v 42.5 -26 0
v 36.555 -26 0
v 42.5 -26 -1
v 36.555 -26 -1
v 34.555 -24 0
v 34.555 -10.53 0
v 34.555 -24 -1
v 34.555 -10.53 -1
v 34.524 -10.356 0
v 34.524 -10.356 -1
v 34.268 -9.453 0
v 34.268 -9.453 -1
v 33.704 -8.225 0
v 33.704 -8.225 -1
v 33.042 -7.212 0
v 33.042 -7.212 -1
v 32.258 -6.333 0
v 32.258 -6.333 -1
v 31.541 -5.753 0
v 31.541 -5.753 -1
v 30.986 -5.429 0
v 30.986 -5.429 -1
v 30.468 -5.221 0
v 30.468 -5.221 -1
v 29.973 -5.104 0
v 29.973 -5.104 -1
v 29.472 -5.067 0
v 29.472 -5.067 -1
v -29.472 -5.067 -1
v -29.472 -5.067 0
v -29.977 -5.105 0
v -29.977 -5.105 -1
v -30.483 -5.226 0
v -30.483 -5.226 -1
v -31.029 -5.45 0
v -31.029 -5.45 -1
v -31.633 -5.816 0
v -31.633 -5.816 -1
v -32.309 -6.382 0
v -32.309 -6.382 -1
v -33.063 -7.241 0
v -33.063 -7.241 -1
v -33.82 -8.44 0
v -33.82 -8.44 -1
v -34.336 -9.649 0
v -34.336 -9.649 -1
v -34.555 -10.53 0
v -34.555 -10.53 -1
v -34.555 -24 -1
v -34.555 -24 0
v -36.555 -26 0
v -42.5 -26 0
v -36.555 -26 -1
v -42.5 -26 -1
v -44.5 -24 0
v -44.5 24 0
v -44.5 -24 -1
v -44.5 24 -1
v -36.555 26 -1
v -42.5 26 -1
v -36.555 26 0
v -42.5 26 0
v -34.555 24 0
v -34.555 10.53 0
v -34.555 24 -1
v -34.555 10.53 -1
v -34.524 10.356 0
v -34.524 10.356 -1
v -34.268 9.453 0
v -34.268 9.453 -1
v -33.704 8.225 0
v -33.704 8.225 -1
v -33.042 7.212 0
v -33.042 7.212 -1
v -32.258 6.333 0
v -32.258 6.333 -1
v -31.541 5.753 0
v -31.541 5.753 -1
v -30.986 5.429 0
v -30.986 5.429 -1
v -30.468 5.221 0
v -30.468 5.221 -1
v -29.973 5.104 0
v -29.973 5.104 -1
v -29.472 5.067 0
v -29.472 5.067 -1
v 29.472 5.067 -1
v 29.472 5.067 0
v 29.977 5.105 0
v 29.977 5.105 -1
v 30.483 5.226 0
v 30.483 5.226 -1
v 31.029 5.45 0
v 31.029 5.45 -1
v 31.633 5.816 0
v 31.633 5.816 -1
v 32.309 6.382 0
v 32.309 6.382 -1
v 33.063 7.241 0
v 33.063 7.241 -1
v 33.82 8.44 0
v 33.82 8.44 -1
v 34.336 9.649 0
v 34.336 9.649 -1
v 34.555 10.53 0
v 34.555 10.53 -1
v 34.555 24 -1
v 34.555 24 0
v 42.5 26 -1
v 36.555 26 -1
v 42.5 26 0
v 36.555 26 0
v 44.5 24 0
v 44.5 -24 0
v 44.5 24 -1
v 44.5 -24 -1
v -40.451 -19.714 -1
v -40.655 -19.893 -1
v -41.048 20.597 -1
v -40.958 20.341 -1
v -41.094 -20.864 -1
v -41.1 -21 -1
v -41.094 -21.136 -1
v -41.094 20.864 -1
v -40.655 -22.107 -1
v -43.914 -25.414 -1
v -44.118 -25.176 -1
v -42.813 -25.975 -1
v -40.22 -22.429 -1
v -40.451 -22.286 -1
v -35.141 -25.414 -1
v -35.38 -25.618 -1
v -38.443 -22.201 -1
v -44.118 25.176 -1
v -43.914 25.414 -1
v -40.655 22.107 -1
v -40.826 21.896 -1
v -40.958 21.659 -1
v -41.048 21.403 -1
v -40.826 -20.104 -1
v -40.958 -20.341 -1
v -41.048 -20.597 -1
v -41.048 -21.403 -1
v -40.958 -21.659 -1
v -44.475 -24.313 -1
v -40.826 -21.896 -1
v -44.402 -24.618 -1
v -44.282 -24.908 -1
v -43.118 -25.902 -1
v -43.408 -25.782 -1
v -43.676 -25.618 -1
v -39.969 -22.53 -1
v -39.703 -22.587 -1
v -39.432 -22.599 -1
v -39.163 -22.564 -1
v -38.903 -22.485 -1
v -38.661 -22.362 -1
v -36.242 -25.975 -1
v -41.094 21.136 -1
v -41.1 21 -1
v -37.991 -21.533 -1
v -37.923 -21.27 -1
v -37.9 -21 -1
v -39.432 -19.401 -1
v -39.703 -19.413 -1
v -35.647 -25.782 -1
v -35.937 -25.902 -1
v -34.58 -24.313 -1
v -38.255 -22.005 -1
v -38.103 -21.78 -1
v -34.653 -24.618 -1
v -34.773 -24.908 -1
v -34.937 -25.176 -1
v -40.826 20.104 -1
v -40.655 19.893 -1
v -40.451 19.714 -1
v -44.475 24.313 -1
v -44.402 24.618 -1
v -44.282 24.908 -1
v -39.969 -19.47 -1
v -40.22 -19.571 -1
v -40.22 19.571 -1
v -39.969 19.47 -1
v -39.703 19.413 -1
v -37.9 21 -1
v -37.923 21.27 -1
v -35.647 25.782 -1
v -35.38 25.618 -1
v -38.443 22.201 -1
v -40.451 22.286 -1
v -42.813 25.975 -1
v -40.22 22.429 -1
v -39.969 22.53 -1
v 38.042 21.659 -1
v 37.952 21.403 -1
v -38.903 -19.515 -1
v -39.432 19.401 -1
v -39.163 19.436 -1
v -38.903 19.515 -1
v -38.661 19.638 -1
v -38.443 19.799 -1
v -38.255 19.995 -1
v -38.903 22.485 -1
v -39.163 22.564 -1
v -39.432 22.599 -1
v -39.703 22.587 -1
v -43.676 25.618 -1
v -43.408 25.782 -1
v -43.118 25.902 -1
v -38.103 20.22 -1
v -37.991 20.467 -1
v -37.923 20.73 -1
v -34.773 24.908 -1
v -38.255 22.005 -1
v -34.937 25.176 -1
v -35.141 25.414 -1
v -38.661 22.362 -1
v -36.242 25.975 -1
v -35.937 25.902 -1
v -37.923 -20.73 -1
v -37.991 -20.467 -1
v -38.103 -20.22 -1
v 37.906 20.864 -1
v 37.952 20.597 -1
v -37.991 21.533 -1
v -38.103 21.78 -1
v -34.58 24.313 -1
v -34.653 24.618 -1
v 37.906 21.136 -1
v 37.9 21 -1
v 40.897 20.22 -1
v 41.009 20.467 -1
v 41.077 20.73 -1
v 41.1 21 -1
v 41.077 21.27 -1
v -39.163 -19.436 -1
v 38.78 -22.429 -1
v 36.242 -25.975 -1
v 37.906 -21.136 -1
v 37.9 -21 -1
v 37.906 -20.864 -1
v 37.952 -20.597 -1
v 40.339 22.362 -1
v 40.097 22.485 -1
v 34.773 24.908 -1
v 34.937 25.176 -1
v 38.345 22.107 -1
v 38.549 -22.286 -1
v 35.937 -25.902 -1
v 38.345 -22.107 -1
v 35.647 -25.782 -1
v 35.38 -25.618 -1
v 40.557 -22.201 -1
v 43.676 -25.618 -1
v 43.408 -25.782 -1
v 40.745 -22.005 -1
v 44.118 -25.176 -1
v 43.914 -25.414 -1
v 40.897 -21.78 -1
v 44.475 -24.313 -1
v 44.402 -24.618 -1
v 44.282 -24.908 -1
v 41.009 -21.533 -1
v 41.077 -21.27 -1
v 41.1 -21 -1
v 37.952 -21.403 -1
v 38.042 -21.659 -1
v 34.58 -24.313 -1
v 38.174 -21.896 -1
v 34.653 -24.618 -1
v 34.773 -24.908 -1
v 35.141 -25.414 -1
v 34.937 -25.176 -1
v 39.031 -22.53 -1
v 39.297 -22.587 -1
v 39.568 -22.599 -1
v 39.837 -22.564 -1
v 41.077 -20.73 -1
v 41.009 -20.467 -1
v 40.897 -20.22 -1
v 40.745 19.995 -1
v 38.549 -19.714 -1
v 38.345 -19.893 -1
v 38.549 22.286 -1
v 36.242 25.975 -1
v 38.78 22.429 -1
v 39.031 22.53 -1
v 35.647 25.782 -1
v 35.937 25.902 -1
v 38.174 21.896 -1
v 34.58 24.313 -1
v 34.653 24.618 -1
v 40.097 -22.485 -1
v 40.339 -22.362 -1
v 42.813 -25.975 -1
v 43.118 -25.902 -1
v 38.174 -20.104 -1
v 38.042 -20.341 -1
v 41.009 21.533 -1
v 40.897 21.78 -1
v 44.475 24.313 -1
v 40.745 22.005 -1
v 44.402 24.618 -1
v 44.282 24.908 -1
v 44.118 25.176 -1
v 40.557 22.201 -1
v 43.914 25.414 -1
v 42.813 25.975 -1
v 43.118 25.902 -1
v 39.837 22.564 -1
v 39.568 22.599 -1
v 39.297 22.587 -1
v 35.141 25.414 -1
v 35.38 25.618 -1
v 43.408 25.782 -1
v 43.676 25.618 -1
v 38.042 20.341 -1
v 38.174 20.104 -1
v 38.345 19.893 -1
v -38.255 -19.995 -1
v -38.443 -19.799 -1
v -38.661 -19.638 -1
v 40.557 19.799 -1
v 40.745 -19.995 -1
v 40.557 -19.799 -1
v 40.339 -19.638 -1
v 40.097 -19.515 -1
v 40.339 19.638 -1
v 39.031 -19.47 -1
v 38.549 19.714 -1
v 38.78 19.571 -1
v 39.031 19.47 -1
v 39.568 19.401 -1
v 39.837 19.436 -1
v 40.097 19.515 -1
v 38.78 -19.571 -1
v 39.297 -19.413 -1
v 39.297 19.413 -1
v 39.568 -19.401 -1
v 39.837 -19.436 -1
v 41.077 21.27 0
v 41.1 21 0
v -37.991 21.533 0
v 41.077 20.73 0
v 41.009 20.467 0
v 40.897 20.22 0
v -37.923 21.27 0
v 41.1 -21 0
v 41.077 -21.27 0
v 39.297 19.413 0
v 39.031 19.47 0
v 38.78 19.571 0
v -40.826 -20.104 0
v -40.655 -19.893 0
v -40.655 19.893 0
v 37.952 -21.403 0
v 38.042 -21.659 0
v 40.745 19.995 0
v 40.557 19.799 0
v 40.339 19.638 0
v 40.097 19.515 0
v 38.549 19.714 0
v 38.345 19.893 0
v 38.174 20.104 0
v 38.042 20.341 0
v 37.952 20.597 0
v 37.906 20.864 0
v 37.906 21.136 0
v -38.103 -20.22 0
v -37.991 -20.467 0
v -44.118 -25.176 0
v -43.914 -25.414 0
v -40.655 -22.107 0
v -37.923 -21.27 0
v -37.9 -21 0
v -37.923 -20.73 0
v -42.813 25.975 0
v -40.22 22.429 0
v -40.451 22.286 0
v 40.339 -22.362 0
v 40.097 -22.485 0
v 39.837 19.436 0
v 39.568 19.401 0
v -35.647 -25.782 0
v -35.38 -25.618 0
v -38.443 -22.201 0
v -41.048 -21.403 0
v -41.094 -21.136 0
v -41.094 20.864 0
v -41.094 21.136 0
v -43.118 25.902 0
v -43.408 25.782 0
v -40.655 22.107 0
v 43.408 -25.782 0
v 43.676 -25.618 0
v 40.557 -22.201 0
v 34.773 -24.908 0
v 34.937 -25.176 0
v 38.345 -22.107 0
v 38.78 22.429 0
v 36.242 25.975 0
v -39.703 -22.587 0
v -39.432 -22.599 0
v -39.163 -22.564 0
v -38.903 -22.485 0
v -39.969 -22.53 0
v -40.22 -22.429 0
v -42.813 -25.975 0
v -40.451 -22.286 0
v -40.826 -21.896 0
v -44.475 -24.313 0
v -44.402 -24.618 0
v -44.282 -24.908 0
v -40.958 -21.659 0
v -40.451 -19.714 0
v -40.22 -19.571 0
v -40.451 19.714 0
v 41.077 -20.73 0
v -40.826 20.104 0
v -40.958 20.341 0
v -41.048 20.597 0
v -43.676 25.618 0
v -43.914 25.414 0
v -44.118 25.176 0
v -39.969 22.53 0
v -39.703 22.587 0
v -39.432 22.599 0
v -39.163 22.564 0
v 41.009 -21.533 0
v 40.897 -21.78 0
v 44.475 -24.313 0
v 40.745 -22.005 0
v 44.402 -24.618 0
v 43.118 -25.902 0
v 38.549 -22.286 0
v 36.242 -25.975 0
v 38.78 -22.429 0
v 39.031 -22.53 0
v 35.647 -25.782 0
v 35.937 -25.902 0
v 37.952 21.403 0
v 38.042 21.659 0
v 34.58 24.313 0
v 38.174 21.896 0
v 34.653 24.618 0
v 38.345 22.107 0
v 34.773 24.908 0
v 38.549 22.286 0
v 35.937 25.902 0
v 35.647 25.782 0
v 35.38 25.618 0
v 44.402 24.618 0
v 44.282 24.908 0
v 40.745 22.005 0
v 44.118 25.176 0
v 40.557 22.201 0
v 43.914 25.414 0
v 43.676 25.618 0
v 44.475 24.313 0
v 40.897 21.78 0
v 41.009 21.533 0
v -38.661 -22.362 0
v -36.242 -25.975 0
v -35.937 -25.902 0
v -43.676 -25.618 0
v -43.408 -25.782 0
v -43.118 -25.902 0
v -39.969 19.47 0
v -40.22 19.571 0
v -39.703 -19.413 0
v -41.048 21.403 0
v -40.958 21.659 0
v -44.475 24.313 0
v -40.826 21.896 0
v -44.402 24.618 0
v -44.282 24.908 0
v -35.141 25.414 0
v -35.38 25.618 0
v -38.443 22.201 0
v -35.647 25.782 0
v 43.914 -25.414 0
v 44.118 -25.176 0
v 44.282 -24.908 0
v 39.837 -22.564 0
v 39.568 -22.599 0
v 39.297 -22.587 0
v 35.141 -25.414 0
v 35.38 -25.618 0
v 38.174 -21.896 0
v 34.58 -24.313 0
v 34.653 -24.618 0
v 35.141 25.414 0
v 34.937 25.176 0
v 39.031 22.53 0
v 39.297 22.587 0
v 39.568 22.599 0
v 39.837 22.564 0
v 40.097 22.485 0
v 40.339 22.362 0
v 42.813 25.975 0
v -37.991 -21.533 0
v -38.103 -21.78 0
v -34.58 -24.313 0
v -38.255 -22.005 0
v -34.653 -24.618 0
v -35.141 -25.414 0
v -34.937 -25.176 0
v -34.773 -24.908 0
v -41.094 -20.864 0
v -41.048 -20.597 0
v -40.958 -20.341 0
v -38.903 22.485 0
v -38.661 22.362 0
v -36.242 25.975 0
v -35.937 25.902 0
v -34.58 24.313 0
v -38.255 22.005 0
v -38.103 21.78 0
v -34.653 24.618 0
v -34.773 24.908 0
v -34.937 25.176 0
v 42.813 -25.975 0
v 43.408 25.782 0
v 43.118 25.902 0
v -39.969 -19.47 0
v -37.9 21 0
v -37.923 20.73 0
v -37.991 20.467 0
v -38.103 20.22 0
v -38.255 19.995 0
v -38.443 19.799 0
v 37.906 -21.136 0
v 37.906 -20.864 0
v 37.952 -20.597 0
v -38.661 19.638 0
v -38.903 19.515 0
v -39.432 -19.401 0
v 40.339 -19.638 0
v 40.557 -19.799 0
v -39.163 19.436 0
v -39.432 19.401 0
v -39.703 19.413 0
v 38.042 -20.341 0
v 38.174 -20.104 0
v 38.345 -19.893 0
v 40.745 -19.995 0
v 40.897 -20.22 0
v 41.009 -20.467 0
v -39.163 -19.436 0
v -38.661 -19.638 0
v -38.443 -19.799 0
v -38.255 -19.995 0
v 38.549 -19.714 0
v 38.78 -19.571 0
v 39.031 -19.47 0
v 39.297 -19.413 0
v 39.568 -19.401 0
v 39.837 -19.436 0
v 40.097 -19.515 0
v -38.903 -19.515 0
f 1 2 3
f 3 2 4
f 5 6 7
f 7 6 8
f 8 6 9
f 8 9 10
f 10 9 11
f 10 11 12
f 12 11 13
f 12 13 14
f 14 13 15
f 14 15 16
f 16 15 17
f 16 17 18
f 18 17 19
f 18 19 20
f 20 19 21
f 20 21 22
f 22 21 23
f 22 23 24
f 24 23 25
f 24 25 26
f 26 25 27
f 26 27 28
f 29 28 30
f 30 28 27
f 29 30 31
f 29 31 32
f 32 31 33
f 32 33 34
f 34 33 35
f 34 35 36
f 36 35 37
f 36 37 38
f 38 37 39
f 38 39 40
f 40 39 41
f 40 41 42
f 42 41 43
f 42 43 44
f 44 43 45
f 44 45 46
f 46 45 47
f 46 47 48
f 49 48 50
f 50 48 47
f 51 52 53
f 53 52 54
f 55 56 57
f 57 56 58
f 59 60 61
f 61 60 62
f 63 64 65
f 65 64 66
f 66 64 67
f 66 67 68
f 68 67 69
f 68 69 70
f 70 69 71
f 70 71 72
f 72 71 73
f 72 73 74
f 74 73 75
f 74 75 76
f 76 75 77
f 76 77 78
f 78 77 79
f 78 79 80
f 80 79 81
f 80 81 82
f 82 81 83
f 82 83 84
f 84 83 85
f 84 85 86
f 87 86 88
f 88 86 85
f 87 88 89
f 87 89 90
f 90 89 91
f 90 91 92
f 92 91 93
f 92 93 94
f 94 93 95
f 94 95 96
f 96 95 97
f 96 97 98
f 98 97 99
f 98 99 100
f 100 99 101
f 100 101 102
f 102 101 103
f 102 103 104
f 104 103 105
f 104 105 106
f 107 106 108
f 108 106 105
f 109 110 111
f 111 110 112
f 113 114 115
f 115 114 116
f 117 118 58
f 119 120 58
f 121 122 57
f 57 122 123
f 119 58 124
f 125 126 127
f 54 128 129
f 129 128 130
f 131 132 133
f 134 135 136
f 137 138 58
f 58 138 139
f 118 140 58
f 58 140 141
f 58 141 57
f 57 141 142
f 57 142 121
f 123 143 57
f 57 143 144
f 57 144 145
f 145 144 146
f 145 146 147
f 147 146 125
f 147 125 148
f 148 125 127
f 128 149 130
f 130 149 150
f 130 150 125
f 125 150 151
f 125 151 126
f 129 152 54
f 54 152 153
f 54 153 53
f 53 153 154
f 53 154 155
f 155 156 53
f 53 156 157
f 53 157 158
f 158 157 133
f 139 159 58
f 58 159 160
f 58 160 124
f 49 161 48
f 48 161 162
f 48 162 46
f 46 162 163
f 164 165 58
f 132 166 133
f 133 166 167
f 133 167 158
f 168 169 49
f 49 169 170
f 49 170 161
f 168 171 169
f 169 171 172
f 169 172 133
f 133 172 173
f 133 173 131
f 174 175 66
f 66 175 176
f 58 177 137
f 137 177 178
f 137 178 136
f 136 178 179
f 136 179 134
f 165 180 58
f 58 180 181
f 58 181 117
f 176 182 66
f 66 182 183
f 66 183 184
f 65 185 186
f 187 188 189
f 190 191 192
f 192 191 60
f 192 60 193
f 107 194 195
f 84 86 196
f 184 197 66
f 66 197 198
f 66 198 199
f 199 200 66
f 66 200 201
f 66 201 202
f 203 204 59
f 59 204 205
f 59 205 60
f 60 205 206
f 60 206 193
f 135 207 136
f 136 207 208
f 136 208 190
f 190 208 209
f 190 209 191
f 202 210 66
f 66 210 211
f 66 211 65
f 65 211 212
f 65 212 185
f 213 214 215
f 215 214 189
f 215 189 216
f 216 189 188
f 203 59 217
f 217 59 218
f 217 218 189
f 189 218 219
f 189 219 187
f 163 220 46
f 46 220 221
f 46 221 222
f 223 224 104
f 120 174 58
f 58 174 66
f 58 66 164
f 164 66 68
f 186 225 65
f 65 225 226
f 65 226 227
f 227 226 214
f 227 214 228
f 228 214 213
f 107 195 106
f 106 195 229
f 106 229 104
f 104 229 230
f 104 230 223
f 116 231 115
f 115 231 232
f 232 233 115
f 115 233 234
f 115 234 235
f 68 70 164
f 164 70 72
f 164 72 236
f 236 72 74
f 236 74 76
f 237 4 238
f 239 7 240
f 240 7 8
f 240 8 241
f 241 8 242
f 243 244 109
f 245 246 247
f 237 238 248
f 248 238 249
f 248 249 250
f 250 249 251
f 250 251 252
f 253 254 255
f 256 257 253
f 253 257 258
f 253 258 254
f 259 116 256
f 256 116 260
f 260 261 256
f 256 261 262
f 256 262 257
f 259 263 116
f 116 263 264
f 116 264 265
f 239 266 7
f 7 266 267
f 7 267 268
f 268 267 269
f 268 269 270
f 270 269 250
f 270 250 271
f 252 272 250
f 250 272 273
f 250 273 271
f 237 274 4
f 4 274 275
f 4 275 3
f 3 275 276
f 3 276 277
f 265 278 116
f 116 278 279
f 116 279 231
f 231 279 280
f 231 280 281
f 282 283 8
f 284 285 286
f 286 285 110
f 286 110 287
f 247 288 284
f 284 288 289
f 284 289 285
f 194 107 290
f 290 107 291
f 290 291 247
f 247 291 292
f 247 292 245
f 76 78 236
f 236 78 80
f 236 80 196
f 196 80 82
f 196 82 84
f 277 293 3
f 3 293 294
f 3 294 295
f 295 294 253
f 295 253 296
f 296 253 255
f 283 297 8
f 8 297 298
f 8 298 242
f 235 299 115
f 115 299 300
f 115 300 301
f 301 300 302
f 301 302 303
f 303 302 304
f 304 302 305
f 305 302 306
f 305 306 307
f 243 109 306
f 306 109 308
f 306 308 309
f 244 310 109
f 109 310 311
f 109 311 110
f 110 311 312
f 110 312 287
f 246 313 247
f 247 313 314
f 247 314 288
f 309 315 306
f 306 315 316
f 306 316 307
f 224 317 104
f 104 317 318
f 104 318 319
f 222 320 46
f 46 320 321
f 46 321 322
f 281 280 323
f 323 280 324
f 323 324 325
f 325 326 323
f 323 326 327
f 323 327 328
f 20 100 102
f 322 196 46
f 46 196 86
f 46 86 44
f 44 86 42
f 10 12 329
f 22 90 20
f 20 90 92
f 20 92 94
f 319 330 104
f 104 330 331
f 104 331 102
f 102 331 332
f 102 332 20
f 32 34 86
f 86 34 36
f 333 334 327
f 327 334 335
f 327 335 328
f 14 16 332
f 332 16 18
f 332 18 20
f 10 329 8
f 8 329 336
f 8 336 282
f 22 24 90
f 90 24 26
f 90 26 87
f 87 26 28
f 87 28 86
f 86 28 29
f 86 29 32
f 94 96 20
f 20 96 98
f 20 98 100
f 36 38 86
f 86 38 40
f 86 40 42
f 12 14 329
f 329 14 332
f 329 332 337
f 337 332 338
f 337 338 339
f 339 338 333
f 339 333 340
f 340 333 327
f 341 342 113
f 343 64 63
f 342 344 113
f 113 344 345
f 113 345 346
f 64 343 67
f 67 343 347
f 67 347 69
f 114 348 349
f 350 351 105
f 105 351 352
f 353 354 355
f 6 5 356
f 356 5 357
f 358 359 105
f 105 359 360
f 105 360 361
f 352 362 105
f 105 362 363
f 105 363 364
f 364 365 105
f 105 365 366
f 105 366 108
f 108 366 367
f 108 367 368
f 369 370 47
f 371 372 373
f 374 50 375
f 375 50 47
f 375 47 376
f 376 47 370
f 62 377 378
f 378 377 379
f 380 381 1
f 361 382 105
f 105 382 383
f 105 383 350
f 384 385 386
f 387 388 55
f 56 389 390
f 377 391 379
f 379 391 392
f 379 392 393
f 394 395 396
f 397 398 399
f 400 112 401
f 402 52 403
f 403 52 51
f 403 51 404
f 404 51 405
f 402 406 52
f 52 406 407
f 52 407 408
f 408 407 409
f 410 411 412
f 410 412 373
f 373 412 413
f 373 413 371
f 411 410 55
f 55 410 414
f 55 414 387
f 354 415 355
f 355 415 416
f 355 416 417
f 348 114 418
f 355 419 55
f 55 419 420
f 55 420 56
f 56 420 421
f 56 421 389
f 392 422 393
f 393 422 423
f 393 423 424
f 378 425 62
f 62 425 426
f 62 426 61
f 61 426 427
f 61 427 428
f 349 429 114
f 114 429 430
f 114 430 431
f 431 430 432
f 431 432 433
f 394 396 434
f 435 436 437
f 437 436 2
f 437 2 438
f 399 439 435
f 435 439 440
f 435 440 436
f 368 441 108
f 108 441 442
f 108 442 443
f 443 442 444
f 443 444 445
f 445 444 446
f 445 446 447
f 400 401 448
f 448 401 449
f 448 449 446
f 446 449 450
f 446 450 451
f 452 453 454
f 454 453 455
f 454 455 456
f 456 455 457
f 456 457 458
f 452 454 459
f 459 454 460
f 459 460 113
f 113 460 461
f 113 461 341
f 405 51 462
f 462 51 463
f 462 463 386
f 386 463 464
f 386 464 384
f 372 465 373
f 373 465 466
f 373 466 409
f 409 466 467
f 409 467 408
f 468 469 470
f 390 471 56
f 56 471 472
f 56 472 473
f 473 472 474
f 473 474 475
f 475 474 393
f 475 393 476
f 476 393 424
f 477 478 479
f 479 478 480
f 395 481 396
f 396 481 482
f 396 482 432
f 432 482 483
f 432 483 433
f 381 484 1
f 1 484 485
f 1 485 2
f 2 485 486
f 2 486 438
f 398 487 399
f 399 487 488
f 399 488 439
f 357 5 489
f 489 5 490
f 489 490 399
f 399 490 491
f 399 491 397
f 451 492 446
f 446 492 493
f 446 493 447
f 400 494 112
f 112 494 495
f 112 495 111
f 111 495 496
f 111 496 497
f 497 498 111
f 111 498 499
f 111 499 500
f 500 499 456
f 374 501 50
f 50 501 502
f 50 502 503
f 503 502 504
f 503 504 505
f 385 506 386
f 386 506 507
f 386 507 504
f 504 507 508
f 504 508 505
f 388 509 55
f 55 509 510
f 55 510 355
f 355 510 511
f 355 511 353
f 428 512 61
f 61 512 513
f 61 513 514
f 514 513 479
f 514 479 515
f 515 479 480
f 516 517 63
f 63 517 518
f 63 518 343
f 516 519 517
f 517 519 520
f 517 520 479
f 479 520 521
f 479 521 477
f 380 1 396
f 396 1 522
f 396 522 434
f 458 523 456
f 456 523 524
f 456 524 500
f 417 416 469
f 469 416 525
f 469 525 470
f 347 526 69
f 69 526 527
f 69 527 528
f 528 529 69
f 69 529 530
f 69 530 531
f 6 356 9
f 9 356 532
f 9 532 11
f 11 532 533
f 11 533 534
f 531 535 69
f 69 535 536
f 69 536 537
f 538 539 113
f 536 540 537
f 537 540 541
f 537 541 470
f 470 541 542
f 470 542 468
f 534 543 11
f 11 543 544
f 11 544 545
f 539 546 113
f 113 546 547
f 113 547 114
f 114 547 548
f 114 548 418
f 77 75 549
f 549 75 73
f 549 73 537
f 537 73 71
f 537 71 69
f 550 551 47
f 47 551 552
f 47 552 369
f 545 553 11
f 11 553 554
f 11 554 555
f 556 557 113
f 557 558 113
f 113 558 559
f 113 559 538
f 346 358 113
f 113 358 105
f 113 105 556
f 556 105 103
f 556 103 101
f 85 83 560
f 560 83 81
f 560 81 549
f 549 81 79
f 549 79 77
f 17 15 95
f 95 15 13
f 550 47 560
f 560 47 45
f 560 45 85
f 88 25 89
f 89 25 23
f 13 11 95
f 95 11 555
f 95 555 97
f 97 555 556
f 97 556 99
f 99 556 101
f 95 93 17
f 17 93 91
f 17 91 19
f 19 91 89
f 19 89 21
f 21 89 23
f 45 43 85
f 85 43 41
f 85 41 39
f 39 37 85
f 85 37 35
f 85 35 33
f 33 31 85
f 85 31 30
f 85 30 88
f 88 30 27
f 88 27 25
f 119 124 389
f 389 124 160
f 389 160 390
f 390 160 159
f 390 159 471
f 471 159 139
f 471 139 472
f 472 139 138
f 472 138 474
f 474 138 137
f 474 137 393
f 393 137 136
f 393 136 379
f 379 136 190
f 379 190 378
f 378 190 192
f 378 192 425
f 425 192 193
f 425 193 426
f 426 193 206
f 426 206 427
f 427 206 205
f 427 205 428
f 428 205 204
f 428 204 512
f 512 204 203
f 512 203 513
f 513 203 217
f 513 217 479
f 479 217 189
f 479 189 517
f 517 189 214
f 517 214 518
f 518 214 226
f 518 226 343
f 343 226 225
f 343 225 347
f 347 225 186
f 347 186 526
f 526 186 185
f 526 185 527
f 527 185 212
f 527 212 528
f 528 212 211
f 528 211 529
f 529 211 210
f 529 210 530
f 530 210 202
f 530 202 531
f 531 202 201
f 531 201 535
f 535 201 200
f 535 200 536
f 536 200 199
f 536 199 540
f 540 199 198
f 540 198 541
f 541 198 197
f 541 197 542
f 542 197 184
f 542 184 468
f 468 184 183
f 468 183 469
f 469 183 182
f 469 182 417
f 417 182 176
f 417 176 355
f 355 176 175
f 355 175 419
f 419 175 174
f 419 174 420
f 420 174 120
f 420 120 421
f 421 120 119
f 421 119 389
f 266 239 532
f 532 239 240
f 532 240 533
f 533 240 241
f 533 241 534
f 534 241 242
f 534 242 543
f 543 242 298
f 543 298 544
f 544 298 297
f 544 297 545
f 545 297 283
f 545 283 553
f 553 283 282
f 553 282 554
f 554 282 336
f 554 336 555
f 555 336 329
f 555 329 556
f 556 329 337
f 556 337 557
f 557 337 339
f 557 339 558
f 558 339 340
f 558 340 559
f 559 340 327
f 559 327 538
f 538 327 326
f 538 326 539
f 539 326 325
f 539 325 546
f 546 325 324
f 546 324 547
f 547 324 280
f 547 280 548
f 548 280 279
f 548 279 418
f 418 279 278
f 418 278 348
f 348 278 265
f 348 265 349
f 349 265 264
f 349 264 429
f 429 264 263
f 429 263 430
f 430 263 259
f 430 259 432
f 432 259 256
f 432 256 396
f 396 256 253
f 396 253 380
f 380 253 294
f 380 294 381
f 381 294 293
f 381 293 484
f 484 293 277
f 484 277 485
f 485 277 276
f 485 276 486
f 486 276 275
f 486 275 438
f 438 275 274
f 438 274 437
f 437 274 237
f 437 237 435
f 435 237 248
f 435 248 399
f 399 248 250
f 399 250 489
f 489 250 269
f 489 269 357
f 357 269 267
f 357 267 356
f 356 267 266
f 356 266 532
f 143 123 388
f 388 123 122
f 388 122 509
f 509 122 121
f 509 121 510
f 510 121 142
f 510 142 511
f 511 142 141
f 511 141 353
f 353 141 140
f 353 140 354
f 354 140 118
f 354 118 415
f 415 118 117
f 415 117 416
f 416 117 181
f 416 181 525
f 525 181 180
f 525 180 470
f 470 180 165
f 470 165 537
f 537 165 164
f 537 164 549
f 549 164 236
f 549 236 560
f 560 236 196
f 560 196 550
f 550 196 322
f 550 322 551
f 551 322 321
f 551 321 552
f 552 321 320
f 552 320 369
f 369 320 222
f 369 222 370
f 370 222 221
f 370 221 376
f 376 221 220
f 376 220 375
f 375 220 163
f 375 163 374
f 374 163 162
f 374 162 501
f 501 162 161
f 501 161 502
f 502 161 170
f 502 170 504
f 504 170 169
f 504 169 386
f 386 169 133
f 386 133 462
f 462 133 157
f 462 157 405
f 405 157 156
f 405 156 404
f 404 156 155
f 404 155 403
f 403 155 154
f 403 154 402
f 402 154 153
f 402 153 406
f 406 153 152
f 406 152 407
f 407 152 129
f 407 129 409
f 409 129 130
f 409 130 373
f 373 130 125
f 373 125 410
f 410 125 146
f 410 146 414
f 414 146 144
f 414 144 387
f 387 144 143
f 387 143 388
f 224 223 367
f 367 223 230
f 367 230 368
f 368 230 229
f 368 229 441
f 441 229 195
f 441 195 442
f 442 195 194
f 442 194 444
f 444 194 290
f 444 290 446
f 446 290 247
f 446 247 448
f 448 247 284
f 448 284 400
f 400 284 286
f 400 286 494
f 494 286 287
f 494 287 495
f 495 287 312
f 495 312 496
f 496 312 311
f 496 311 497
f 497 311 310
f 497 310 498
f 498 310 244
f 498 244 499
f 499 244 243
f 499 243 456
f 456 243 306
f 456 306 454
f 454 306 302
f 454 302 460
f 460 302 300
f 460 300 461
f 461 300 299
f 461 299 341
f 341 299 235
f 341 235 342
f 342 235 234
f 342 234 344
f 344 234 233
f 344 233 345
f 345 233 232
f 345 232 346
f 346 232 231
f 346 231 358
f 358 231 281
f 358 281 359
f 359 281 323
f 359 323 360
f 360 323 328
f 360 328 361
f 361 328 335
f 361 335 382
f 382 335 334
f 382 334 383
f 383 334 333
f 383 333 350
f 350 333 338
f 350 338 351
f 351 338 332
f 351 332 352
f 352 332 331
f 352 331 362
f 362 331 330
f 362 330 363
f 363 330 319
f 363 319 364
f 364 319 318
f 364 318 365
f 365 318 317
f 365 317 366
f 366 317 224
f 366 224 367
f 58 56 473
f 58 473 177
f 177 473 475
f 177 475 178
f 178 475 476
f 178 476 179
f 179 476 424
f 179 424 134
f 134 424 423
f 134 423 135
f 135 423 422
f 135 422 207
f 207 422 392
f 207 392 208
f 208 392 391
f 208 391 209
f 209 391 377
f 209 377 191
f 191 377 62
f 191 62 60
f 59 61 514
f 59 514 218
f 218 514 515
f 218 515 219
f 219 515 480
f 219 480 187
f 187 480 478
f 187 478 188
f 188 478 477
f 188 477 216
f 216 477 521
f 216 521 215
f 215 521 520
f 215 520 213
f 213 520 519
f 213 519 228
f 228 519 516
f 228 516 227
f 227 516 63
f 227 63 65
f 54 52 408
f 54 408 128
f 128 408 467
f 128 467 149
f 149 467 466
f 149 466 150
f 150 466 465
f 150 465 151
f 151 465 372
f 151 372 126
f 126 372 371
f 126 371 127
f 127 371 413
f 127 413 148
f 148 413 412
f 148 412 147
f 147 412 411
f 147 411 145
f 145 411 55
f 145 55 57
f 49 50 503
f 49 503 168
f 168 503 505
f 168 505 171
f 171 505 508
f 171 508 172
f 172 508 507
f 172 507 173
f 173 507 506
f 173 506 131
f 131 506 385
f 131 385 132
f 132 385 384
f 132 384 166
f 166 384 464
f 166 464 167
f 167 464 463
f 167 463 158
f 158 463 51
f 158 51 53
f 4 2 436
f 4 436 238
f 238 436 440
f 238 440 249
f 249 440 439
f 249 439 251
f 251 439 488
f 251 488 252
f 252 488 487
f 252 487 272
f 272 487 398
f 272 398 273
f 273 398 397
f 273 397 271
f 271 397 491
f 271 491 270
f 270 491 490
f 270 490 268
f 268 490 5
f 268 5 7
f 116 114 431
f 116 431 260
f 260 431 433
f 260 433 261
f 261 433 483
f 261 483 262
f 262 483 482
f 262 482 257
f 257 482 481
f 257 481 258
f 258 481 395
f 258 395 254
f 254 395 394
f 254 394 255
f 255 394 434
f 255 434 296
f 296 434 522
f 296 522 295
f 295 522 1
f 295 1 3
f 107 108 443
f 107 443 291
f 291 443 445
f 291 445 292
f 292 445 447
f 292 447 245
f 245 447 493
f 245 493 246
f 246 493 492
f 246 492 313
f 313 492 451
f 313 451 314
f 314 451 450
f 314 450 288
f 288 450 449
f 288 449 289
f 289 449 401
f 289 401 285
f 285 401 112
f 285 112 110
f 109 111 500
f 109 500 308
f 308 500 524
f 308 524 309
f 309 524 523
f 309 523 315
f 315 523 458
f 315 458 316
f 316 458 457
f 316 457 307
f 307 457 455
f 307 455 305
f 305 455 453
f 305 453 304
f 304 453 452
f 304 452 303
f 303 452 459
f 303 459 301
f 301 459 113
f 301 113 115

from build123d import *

# Parameters (mm, degrees)
EXTRUDE_1_DEPTH     = 1
SKETCH_2_R          = 1.6
CUT_EXTRUDE_1_DEPTH = 4
FILLET_3_R          = 2
FILLET_4_R          = 2
FILLET_5_R          = 2
FILLET_6_R          = 2
FILLET_7_R          = 2
FILLET_8_R          = 2
FILLET_9_R          = 2
FILLET_10_R         = 2


with BuildPart() as part:
    # 草图1 → 凸台-拉伸1 (new body)
    with BuildSketch(Plane.XY):
        with BuildLine():
            Line((-34.555089852, 10.529608301), (-34.555089852, 26))
            Line((-34.555089852, 26), (-44.5, 26))
            Line((-44.5, 26), (-44.5, -26))
            Line((-44.5, -26), (-34.555089852, -26))
            Line((-34.555089852, -26), (-34.555089852, -10.529608301))
            add(Edge.make_bspline(
                [(-34.555089852, -10.529608301), (-34.215666053, -8.393494982), (-32.082061244, -5.04423915), (-29.471557065, -5.067226444)],
                knots=[0, 0, 0, 0, 1, 1, 1, 1], degree=3))
            Line((-29.471557065, -5.067226444), (29.471557065, -5.067226444))
            add(Edge.make_bspline(
                [(34.555089852, -10.529608301), (34.215666053, -8.393494982), (32.082061244, -5.04423915), (29.471557065, -5.067226444)],
                knots=[0, 0, 0, 0, 1, 1, 1, 1], degree=3))
            Line((34.555089852, -10.529608301), (34.555089852, -26))
            Line((34.555089852, -26), (44.5, -26))
            Line((44.5, -26), (44.5, 26))
            Line((44.5, 26), (34.555089852, 26))
            Line((34.555089852, 26), (34.555089852, 10.529608301))
            add(Edge.make_bspline(
                [(34.555089852, 10.529608301), (34.215666053, 8.393494982), (32.082061244, 5.04423915), (29.471557065, 5.067226444)],
                knots=[0, 0, 0, 0, 1, 1, 1, 1], degree=3))
            Line((29.471557065, 5.067226444), (-29.471557065, 5.067226444))
            add(Edge.make_bspline(
                [(-34.555089852, 10.529608301), (-34.215666053, 8.393494982), (-32.082061244, 5.04423915), (-29.471557065, 5.067226444)],
                knots=[0, 0, 0, 0, 1, 1, 1, 1], degree=3))
        make_face()
    extrude(amount=-EXTRUDE_1_DEPTH)

    # 草图2 → 切除-拉伸1 (cut)
    with BuildSketch(Plane.XY):
        with Locations((-39.5, 21)):
            Circle(SKETCH_2_R)
        with Locations((39.5, 21)):
            Circle(SKETCH_2_R)
        with Locations((-39.5, -21)):
            Circle(SKETCH_2_R)
        with Locations((39.5, -21)):
            Circle(SKETCH_2_R)
    extrude(amount=-CUT_EXTRUDE_1_DEPTH, mode=Mode.SUBTRACT)

    # 圆角3
    fillet_3_edges = [part.edges().sort_by_distance(p)[0] for p in [
        (-44.5, 26, -0.5),
    ]]
    fillet(fillet_3_edges, radius=FILLET_3_R)

    # 圆角4
    fillet_4_edges = [part.edges().sort_by_distance(p)[0] for p in [
        (-34.555089852, 26, -0.5),
    ]]
    fillet(fillet_4_edges, radius=FILLET_4_R)

    # 圆角5
    fillet_5_edges = [part.edges().sort_by_distance(p)[0] for p in [
        (-44.5, -26, -0.5),
    ]]
    fillet(fillet_5_edges, radius=FILLET_5_R)

    # 圆角6
    fillet_6_edges = [part.edges().sort_by_distance(p)[0] for p in [
        (-34.555089852, -26, -0.5),
    ]]
    fillet(fillet_6_edges, radius=FILLET_6_R)

    # 圆角7
    fillet_7_edges = [part.edges().sort_by_distance(p)[0] for p in [
        (34.555089852, -26, -0.5),
    ]]
    fillet(fillet_7_edges, radius=FILLET_7_R)

    # 圆角8
    fillet_8_edges = [part.edges().sort_by_distance(p)[0] for p in [
        (44.5, -26, -0.5),
    ]]
    fillet(fillet_8_edges, radius=FILLET_8_R)

    # 圆角9
    fillet_9_edges = [part.edges().sort_by_distance(p)[0] for p in [
        (34.555089852, 26, -0.5),
    ]]
    fillet(fillet_9_edges, radius=FILLET_9_R)

    # 圆角10
    fillet_10_edges = [part.edges().sort_by_distance(p)[0] for p in [
        (44.5, 26, -0.5),
    ]]
    fillet(fillet_10_edges, radius=FILLET_10_R)


solid = part.part
